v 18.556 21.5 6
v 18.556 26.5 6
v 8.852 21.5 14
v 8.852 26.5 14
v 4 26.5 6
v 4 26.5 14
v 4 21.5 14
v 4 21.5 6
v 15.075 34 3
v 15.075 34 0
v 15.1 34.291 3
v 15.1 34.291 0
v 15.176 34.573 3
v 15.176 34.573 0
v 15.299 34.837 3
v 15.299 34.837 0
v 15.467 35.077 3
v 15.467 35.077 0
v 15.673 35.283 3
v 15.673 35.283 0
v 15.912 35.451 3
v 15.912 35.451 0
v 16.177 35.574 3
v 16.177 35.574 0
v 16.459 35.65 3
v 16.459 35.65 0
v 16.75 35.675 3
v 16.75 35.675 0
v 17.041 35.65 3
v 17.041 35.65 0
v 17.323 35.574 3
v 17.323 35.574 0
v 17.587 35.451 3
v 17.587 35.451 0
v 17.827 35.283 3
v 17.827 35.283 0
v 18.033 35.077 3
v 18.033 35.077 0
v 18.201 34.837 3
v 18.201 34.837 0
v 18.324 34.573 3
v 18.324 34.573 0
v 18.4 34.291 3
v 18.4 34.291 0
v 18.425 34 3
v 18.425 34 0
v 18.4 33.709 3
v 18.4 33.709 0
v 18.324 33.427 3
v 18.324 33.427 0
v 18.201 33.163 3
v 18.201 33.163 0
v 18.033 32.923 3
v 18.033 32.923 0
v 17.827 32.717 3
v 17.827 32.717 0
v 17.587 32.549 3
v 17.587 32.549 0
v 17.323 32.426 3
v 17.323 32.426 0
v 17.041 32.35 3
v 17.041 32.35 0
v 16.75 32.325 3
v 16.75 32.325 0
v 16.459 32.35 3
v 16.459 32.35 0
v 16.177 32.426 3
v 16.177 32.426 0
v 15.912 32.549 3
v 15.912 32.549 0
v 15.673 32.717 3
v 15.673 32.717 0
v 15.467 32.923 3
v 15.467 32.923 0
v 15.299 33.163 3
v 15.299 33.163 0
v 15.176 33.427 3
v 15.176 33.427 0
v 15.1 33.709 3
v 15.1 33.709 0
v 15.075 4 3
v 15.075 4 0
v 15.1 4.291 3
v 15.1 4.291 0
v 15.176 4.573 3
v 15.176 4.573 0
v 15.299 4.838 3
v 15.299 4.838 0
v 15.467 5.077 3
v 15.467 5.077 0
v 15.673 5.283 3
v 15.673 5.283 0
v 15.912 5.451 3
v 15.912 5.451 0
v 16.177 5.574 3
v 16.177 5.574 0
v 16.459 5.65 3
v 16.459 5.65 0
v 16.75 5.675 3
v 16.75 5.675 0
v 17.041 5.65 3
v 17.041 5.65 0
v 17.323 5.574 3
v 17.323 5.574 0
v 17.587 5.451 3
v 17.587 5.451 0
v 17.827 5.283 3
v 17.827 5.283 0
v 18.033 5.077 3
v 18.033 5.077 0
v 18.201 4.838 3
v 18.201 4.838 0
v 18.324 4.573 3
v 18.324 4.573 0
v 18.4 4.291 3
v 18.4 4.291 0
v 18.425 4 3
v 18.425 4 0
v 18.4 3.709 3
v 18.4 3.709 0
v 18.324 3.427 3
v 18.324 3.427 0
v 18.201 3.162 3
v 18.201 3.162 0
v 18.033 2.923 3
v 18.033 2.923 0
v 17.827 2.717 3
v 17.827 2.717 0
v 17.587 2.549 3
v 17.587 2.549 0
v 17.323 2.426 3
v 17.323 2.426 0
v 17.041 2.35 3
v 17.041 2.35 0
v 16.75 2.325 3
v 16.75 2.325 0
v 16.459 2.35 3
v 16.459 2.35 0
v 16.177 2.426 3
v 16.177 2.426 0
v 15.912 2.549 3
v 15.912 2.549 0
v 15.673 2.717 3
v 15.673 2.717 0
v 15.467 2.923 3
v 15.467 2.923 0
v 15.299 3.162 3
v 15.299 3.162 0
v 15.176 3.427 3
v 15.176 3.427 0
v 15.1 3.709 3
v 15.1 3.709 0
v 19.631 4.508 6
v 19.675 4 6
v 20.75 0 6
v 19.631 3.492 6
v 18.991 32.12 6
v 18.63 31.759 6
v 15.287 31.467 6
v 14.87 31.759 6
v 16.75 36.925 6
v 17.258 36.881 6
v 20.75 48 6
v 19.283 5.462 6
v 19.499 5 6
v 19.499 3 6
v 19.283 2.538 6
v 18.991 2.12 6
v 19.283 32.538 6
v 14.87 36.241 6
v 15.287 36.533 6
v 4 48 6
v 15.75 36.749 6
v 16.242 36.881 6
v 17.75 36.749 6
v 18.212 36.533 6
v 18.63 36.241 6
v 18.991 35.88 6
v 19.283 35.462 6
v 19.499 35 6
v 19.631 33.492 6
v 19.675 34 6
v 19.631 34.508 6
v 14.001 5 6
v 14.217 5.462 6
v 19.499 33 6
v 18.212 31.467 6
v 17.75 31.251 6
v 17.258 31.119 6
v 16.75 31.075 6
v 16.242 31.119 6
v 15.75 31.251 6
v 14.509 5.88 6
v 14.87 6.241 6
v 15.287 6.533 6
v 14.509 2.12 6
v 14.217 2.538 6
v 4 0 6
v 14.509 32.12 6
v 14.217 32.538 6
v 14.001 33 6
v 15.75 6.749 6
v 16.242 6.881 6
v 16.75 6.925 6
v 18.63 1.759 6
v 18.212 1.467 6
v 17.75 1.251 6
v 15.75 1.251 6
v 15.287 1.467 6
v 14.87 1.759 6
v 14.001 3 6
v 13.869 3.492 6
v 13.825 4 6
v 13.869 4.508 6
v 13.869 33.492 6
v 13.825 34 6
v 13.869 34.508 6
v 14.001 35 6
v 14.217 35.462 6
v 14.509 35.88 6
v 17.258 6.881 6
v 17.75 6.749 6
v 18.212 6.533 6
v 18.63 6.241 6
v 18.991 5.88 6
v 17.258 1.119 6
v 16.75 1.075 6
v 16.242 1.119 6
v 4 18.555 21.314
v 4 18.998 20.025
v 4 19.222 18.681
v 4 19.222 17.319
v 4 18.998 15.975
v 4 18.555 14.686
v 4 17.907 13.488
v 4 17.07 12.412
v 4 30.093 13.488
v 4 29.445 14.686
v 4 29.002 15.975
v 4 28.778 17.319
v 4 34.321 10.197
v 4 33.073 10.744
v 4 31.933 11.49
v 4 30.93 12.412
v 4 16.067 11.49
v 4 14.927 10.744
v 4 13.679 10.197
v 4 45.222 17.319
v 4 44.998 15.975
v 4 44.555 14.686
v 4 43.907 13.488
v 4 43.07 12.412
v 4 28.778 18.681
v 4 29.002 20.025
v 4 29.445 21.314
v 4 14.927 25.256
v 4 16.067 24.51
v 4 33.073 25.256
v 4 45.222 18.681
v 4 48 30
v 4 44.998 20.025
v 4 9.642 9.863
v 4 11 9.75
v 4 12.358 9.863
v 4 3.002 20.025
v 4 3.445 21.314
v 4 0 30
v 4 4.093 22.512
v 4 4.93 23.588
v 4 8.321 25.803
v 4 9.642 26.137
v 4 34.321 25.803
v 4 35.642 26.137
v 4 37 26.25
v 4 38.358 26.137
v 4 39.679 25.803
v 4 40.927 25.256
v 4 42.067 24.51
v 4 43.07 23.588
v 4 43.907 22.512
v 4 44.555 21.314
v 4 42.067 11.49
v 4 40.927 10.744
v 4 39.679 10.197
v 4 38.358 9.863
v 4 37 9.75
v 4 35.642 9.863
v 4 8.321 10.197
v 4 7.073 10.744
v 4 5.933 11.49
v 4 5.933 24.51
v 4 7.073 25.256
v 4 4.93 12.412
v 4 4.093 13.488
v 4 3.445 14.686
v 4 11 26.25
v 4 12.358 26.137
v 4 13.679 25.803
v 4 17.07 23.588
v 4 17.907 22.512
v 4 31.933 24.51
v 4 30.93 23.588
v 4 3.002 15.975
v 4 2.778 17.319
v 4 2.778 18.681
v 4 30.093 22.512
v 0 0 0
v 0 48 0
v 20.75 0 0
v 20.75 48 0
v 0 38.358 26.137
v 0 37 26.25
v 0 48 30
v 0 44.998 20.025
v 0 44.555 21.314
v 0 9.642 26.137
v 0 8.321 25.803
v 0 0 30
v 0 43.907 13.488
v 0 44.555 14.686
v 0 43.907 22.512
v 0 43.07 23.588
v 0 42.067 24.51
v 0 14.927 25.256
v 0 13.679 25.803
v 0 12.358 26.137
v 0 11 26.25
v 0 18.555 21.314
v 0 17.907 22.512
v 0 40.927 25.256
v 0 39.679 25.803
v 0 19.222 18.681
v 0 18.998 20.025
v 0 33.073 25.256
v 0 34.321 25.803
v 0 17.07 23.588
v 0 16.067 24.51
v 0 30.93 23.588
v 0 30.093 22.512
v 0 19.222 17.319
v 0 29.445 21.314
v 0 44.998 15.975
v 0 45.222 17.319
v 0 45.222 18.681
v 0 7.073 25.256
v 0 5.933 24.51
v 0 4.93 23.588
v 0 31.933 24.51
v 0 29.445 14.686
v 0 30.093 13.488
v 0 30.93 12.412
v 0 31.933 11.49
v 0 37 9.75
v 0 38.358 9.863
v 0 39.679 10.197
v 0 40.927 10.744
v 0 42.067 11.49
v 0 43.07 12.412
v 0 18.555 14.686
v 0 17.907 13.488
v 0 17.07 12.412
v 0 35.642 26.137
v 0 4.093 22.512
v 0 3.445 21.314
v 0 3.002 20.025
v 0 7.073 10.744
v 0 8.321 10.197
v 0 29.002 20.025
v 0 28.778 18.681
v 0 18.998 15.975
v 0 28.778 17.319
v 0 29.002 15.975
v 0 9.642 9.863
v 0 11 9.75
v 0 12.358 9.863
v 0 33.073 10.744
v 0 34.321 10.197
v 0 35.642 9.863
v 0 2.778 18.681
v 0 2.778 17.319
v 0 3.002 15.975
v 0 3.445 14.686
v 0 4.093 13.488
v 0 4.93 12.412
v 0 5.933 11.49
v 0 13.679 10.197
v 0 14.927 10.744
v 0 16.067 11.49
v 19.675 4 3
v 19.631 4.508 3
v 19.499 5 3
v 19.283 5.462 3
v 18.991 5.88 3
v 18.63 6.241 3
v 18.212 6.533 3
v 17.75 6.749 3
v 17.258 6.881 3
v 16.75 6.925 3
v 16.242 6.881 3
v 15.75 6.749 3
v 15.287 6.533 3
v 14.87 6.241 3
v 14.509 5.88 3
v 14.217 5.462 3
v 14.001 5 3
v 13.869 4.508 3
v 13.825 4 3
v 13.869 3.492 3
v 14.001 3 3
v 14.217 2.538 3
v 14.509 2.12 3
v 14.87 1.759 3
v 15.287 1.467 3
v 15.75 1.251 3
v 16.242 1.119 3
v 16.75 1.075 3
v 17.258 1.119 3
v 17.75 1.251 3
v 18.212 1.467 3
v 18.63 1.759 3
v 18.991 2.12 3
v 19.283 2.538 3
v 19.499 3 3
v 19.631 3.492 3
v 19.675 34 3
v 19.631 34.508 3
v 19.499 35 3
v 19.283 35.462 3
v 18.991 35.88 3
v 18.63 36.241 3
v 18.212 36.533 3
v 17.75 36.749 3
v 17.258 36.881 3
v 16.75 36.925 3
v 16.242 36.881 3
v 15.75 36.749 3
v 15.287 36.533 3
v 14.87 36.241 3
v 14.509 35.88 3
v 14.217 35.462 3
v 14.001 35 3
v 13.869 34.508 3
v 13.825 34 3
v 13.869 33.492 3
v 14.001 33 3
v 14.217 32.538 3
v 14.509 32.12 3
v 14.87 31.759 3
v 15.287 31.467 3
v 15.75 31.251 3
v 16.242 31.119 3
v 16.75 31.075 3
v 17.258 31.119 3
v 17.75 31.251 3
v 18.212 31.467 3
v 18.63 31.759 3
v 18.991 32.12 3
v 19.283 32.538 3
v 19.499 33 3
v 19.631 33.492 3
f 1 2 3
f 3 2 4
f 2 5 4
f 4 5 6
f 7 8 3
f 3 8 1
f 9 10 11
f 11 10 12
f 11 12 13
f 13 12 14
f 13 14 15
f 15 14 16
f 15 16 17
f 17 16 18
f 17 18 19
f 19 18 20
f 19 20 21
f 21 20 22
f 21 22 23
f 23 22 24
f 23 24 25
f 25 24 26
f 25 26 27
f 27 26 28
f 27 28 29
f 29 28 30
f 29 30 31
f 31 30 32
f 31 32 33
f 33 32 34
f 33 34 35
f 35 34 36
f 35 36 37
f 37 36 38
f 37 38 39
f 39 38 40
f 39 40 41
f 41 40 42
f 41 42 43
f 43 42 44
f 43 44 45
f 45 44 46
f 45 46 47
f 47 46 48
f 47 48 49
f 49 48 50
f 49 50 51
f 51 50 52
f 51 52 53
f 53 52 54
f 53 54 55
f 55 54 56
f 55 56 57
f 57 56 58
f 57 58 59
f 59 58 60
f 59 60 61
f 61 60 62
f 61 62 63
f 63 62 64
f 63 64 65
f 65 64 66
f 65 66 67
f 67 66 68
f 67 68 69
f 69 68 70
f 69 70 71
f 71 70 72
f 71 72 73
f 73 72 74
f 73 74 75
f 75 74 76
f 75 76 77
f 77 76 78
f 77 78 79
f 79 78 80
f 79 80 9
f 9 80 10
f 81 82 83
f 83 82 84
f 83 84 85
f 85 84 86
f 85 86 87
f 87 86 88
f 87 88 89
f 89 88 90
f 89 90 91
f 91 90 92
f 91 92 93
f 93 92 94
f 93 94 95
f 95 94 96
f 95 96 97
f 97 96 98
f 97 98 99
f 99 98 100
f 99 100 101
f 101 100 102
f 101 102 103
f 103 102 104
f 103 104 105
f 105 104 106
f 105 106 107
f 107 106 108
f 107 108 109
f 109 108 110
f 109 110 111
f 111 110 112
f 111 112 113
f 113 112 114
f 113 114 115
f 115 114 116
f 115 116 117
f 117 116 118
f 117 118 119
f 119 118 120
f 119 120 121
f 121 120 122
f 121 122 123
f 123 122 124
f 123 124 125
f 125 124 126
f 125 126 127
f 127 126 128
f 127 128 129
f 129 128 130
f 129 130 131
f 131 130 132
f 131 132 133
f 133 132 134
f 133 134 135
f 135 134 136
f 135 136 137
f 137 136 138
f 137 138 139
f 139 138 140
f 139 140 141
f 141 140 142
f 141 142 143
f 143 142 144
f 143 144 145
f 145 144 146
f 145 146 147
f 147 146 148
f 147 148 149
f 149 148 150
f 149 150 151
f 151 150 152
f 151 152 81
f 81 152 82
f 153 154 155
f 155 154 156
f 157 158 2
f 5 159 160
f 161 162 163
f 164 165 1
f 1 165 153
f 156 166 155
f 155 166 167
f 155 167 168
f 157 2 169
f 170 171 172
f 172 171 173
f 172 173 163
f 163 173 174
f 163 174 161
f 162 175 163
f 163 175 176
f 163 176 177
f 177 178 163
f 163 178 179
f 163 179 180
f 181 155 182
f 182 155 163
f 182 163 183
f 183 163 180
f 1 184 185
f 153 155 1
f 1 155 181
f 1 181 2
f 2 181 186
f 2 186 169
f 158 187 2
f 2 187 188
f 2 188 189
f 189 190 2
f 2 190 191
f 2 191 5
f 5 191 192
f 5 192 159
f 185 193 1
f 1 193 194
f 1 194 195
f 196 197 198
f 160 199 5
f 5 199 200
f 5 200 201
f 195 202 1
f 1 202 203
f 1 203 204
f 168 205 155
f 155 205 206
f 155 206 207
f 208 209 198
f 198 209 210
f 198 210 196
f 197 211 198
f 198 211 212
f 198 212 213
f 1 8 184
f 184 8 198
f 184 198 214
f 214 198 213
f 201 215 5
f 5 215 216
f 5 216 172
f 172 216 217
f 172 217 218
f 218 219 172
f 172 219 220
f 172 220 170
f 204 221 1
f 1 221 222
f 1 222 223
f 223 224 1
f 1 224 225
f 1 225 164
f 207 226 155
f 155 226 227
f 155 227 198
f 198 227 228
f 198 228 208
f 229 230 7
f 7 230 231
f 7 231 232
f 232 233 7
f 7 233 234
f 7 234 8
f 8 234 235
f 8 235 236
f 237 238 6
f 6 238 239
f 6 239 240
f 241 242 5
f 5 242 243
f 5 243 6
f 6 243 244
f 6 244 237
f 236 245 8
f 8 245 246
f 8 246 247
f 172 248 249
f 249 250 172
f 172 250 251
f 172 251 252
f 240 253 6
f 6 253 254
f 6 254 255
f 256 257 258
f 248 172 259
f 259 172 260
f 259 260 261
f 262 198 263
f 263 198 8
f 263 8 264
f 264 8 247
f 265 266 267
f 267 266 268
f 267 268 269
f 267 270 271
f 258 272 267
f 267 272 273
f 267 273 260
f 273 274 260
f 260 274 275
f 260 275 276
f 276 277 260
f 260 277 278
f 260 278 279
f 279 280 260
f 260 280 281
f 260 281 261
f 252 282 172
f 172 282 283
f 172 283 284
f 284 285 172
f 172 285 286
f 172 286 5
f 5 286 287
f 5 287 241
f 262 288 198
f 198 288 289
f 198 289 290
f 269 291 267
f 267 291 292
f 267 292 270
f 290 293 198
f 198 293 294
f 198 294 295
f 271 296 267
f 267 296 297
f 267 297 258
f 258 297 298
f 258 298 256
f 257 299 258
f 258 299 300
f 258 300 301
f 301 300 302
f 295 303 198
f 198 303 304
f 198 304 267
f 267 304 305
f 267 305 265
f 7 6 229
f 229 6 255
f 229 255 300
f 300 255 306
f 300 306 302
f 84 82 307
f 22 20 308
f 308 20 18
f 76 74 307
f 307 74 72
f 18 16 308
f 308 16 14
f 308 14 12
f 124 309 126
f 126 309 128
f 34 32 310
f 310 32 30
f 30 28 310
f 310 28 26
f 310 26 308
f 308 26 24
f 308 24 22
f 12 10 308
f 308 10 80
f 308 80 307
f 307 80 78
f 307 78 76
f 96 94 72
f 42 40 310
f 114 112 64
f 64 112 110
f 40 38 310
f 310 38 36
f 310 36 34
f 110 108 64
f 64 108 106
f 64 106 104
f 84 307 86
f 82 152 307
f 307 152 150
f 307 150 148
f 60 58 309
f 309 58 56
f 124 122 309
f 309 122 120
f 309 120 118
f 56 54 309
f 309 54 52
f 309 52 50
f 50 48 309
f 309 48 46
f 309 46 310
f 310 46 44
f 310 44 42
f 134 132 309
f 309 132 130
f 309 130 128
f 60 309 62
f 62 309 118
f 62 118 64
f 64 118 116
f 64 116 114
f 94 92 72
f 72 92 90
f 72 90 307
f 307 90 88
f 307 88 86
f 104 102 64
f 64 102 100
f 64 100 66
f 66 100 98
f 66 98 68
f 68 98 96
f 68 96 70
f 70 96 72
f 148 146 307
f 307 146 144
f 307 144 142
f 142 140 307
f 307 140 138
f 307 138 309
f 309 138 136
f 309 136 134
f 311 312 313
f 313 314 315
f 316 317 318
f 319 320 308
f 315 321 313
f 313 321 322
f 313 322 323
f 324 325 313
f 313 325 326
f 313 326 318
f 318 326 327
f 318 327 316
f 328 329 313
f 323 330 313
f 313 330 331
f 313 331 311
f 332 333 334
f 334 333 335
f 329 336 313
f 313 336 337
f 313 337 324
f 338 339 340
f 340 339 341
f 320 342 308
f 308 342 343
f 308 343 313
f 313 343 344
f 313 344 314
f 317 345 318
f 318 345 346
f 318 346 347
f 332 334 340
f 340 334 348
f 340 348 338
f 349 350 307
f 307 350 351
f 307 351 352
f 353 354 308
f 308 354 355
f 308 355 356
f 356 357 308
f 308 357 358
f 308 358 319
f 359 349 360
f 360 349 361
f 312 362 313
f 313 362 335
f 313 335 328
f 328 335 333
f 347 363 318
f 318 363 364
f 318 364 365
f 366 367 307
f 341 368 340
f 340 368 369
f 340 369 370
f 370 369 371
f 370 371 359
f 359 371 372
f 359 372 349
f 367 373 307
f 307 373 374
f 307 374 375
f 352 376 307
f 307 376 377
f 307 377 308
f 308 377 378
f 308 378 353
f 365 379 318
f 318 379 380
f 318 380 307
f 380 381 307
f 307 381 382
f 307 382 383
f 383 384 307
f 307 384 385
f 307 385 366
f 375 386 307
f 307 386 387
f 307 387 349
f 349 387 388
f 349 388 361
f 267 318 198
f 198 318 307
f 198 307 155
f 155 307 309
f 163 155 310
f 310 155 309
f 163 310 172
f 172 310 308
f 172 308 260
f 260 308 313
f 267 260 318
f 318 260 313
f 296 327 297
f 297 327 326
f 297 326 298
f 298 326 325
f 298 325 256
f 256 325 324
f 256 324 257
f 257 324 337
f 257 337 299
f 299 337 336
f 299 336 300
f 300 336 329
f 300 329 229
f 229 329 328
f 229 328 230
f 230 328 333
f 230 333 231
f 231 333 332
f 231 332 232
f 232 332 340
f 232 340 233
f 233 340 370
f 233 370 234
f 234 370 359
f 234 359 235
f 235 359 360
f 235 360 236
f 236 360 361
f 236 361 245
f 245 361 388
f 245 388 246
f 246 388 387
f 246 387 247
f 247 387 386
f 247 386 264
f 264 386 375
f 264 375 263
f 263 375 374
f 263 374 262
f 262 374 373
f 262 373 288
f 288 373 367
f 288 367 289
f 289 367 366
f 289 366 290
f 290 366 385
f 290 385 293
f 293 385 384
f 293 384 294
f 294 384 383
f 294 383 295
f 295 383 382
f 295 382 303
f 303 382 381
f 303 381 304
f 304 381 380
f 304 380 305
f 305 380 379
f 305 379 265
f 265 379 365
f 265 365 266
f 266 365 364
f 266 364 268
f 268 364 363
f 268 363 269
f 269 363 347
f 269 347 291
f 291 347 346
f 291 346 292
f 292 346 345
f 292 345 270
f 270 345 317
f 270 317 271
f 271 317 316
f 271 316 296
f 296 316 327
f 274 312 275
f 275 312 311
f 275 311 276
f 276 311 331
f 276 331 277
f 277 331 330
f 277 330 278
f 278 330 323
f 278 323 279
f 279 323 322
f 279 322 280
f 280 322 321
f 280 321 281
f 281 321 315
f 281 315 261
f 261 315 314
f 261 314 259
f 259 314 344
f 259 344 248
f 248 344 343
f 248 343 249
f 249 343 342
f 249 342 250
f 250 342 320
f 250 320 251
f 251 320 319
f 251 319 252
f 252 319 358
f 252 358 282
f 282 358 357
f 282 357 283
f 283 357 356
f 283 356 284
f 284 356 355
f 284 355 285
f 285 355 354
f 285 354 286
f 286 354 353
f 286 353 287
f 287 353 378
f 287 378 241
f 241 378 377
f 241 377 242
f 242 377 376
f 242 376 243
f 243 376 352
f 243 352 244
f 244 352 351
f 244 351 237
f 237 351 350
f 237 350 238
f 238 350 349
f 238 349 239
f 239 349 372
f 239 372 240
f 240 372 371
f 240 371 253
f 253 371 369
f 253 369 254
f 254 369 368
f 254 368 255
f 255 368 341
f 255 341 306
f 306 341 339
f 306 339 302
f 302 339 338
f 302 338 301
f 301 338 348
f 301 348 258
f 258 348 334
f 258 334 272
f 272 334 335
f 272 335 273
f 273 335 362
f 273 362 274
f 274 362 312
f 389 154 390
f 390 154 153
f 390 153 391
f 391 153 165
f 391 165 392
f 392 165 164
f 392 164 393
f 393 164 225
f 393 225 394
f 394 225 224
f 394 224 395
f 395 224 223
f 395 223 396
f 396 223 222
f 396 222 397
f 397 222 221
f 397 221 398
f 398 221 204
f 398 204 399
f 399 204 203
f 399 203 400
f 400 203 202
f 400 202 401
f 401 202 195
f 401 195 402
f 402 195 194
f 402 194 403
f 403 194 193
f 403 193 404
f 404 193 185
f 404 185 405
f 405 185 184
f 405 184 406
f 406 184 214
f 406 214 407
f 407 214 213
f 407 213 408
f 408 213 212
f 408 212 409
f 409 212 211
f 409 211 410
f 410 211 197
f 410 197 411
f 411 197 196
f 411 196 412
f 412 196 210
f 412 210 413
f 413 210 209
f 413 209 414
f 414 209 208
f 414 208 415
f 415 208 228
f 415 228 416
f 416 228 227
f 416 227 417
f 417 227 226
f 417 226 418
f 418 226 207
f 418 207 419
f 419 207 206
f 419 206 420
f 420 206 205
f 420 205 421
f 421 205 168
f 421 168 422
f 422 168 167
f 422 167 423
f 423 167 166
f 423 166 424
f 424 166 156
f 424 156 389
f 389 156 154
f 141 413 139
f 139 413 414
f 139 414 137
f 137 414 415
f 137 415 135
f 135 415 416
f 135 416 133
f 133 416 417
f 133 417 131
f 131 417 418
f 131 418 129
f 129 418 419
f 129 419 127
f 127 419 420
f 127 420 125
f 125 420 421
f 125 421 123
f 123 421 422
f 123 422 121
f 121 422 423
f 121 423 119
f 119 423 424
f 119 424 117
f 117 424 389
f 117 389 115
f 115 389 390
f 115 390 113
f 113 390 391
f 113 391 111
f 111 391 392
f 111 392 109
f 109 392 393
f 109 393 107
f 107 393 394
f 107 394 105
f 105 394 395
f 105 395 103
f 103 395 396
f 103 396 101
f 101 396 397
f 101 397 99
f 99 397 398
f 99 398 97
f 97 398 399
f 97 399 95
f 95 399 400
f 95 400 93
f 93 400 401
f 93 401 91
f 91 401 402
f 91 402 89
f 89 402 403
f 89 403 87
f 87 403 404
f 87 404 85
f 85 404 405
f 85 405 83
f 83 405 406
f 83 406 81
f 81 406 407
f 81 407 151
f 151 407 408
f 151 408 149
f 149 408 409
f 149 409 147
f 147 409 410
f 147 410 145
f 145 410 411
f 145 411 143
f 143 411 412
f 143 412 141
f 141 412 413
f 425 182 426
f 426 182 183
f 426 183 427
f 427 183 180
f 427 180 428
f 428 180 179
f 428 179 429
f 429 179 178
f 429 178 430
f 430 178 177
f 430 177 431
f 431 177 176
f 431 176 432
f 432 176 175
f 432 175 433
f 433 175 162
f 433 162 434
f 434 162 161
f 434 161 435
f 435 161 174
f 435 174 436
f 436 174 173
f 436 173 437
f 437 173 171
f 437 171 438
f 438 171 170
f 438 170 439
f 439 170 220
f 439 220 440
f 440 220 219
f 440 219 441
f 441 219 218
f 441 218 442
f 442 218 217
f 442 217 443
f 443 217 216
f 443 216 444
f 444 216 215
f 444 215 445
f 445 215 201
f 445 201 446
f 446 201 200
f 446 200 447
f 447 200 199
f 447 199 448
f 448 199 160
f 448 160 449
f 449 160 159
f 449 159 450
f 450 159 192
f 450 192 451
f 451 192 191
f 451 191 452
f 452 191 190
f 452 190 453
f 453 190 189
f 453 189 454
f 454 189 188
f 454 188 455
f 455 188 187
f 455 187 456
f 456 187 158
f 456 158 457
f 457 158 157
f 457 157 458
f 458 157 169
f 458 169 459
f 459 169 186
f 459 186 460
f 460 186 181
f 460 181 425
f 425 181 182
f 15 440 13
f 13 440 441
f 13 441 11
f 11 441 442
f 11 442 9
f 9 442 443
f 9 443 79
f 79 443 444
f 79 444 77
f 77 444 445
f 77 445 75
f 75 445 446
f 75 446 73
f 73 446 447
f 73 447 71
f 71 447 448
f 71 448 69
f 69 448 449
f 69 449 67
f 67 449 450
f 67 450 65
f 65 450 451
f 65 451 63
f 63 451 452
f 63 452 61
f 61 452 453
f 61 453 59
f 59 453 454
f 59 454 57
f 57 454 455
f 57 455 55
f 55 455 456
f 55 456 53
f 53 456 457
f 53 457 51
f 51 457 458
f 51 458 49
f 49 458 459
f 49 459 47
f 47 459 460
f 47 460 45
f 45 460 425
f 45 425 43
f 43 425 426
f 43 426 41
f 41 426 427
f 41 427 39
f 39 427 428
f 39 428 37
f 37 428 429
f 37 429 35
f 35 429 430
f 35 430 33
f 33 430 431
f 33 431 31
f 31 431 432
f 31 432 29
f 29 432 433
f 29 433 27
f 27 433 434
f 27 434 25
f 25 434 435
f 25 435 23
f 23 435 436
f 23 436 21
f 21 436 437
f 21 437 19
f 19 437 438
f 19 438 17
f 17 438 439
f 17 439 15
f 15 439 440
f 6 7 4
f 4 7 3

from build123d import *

# Parameters (mm, degrees)
SKETCH1_W           = 20.75
SKETCH1_H           = 48
SKETCH1_R           = 1.675
BOSS_EXTRUDE1_DEPTH = 6
SKETCH2_W           = 30
SKETCH2_H           = 48
BOSS_EXTRUDE2_DEPTH = 4
SKETCH3_R           = 8.25
CUT_EXTRUDE1_DEPTH  = 6
BOSS_EXTRUDE3_START = -26.5
BOSS_EXTRUDE3_DEPTH = 5
SKETCH5_R           = 2.925
CUT_EXTRUDE2_DEPTH  = 3
SKETCH6_W           = 4
SKETCH6_H           = 5
CUT_EXTRUDE3_DEPTH  = 34


with BuildPart() as part:
    # Sketch1 → Boss-Extrude1 (new body)
    with BuildSketch(Plane.XY):
        with Locations((10.375, 24)):
            Rectangle(SKETCH1_W, SKETCH1_H)
        with Locations((16.75, 34)):
            Circle(SKETCH1_R, mode=Mode.SUBTRACT)
        with Locations((16.75, 4)):
            Circle(SKETCH1_R, mode=Mode.SUBTRACT)
    extrude(amount=BOSS_EXTRUDE1_DEPTH)

    # Sketch2 → Boss-Extrude2 (add)
    with BuildSketch(Plane.ZY):
        with Locations((15, 24)):
            Rectangle(SKETCH2_W, SKETCH2_H)
    extrude(amount=-BOSS_EXTRUDE2_DEPTH)

    # Sketch3 → Cut-Extrude1 (cut)
    with BuildSketch(Plane.ZY):
        with Locations((18, 37)):
            Circle(SKETCH3_R)
        with Locations((18, 11)):
            Circle(SKETCH3_R)
    extrude(amount=-CUT_EXTRUDE1_DEPTH, mode=Mode.SUBTRACT)

    # Sketch4 → Boss-Extrude3 (add)
    with BuildSketch(Plane(origin=(0, 48, 0), x_dir=(1, 0, 0), z_dir=(0, 1, 0)).offset(BOSS_EXTRUDE3_START)):
        Polygon((4, -18), (4, -6), (18.555883802, -6), align=None)
    extrude(amount=BOSS_EXTRUDE3_DEPTH)

    # Sketch5 → Cut-Extrude2 (cut)
    with BuildSketch(Plane.XY.offset(6)):
        with Locations((16.75, 34)):
            Circle(SKETCH5_R)
        with Locations((16.75, 4)):
            Circle(SKETCH5_R)
    extrude(amount=-CUT_EXTRUDE2_DEPTH, mode=Mode.SUBTRACT)

    # Sketch6 → Cut-Extrude3 (cut)
    with BuildSketch(Plane(origin=(4, 0, 0), x_dir=(0, 0, -1), z_dir=(1, 0, 0))):
        with Locations((-16, 24)):
            Rectangle(SKETCH6_W, SKETCH6_H)
    extrude(amount=CUT_EXTRUDE3_DEPTH, mode=Mode.SUBTRACT)


solid = part.part
